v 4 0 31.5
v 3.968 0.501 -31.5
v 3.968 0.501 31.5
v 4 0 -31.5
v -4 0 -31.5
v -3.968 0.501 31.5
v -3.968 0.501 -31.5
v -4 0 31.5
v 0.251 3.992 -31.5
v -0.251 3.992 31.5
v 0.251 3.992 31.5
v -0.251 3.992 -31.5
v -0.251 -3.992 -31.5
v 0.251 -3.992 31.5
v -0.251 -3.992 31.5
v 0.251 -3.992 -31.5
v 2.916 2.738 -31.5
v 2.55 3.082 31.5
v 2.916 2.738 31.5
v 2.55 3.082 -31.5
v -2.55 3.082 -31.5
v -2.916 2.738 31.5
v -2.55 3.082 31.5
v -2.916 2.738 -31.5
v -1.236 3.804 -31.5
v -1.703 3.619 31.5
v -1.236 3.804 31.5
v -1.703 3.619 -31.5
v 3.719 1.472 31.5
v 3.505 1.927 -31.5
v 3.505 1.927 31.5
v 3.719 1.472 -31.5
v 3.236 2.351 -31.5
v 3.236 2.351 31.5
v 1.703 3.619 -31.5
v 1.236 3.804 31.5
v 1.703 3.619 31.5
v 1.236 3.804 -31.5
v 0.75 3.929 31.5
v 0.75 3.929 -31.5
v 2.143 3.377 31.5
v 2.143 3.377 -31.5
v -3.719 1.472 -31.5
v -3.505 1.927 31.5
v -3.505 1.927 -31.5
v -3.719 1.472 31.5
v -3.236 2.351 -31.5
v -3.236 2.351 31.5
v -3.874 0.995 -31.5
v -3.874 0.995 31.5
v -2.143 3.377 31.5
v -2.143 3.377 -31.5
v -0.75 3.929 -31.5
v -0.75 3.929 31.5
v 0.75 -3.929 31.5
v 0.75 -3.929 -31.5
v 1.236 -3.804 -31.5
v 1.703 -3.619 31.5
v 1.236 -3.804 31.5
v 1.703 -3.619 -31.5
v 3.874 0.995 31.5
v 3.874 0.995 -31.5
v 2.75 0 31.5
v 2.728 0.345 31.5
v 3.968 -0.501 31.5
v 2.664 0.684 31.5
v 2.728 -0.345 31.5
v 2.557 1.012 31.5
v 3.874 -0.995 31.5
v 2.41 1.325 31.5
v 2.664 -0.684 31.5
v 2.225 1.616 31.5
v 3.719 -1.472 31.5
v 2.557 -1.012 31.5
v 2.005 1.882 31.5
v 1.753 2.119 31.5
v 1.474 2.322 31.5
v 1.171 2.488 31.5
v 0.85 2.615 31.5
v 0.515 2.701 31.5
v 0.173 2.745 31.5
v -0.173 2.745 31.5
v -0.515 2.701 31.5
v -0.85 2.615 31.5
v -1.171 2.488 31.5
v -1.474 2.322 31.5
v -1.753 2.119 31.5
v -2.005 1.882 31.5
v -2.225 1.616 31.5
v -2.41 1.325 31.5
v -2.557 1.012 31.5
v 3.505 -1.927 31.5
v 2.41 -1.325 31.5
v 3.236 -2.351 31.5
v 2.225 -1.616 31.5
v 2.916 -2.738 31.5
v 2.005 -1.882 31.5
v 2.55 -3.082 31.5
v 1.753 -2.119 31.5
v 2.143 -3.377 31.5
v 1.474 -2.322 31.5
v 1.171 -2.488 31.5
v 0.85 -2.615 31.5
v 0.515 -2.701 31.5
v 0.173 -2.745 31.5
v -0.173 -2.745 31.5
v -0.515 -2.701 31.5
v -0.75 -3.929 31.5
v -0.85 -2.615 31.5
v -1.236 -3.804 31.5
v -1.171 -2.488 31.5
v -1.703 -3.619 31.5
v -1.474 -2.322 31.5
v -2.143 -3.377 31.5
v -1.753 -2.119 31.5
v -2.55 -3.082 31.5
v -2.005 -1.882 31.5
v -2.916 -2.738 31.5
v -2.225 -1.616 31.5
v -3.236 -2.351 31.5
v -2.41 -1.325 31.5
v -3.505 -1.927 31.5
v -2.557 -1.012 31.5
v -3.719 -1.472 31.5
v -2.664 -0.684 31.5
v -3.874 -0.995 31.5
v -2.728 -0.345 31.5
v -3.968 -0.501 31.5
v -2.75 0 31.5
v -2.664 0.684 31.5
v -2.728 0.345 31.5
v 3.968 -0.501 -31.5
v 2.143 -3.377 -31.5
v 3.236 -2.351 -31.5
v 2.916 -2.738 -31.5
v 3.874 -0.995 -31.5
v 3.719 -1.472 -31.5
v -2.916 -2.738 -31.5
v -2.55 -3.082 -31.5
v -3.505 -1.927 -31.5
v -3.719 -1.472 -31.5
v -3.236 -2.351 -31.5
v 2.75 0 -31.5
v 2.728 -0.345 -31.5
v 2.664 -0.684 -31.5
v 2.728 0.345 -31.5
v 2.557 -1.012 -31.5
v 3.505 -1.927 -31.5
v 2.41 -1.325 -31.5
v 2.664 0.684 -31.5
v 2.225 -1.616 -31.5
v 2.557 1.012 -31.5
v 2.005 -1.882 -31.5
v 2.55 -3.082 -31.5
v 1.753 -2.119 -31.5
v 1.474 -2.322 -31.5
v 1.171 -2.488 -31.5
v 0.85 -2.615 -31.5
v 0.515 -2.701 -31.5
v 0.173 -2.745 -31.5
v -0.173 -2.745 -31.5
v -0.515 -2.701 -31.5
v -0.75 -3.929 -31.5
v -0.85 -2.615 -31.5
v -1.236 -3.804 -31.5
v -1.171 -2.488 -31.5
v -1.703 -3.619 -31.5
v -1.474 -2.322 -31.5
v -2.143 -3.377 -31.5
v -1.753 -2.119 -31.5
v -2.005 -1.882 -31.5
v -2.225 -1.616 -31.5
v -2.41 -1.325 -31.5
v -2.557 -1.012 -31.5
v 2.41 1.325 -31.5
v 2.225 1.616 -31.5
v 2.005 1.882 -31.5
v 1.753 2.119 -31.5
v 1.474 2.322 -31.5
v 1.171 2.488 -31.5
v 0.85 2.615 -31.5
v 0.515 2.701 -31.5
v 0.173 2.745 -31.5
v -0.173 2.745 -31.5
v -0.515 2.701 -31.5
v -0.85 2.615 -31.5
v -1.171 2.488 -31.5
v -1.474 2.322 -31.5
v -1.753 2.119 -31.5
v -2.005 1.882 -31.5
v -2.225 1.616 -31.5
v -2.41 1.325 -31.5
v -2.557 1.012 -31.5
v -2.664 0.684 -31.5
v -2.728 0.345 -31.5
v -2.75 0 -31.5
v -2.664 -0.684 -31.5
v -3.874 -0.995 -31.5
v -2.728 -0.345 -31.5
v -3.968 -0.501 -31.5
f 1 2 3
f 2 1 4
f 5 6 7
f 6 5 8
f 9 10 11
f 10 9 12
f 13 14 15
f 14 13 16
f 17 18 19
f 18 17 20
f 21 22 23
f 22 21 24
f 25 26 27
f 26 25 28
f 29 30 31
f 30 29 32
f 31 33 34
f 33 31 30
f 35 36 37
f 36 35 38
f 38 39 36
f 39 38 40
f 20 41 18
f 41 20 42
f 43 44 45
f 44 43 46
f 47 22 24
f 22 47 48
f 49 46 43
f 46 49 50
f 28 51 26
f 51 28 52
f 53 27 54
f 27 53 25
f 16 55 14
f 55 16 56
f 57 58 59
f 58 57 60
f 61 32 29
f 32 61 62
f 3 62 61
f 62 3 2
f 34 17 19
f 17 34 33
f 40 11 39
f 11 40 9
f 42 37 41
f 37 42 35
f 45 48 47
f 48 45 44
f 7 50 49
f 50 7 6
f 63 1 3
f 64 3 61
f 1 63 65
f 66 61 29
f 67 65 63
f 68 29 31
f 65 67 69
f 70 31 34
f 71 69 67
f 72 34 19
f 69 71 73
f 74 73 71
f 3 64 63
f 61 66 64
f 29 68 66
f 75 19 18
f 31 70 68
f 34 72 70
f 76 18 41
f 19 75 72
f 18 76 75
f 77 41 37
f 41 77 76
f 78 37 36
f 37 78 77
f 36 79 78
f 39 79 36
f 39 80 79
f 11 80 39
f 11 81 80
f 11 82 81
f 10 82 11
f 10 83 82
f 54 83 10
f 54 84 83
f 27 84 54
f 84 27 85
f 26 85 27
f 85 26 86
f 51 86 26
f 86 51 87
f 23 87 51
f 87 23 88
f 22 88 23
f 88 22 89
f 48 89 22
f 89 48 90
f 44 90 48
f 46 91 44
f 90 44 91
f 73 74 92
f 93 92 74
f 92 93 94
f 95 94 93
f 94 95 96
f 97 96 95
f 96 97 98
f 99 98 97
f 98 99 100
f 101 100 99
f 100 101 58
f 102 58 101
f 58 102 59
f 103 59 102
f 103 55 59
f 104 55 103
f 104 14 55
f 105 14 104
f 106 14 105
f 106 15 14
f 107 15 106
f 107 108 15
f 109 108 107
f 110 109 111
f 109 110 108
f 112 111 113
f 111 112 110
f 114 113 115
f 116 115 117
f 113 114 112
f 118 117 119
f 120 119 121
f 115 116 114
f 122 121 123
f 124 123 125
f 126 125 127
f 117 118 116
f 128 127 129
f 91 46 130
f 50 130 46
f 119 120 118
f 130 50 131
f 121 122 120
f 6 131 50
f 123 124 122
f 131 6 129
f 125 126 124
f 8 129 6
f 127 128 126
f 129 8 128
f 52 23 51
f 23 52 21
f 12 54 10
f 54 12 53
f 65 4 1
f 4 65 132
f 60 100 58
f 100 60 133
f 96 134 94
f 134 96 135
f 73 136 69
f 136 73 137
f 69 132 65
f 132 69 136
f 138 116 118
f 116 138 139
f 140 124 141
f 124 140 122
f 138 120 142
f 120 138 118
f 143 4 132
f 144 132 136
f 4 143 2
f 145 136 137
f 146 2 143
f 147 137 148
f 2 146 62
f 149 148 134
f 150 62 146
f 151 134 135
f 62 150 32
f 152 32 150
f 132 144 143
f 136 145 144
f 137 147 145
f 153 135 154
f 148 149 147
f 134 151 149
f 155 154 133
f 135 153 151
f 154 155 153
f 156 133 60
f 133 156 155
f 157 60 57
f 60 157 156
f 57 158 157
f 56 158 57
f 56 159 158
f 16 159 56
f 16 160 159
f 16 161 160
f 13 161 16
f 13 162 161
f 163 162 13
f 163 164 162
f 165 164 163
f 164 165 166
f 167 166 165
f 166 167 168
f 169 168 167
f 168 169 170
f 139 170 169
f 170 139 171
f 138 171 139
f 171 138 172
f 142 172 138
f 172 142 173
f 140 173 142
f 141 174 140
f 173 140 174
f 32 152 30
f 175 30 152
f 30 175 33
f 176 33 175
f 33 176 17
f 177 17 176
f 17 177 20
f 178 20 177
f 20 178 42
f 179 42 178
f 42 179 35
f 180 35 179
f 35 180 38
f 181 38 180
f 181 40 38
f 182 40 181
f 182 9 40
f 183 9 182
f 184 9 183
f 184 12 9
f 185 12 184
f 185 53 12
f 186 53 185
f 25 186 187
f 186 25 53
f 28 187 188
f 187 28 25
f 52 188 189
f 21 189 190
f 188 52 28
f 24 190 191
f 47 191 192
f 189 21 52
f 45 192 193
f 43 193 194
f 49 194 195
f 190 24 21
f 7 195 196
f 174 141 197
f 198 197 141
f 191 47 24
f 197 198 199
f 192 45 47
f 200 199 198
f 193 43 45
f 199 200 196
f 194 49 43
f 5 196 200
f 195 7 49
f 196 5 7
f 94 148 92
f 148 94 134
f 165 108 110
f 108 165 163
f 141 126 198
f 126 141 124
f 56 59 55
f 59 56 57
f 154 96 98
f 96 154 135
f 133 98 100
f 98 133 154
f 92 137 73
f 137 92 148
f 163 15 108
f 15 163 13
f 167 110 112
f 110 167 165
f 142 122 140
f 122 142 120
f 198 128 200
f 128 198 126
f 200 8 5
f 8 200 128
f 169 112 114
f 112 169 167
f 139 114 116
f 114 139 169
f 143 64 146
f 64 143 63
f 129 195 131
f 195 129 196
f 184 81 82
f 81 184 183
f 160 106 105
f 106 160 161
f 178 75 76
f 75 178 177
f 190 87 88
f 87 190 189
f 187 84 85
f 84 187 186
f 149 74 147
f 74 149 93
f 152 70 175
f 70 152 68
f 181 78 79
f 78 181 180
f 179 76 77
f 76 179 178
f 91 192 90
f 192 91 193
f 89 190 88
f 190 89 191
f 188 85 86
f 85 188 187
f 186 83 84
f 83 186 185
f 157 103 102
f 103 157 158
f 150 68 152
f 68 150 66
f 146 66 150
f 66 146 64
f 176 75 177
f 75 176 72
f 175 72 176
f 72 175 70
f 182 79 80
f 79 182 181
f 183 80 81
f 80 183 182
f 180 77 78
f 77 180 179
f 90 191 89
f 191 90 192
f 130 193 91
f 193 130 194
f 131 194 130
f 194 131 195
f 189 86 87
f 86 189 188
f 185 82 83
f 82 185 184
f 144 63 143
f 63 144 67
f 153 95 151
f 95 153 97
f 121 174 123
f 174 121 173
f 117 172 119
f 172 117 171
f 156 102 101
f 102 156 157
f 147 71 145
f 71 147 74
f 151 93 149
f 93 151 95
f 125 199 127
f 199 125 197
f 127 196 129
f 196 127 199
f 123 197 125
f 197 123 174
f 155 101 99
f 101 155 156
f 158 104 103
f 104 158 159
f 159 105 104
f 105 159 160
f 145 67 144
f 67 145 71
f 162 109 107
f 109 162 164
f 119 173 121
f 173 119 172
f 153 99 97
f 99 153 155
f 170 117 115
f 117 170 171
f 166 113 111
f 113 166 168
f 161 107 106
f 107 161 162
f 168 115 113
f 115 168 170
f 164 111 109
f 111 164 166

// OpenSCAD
$fn = 50;


difference() {
	union() {
		translate(v = [0, 0, -31.5000000000]) {
			cylinder(h = 63, r = 4.0000000000);
		}
	}
	union() {
		translate(v = [0, 0, -100.0000000000]) {
			cylinder(h = 200, r = 2.7500000000);
		}
	}
}
